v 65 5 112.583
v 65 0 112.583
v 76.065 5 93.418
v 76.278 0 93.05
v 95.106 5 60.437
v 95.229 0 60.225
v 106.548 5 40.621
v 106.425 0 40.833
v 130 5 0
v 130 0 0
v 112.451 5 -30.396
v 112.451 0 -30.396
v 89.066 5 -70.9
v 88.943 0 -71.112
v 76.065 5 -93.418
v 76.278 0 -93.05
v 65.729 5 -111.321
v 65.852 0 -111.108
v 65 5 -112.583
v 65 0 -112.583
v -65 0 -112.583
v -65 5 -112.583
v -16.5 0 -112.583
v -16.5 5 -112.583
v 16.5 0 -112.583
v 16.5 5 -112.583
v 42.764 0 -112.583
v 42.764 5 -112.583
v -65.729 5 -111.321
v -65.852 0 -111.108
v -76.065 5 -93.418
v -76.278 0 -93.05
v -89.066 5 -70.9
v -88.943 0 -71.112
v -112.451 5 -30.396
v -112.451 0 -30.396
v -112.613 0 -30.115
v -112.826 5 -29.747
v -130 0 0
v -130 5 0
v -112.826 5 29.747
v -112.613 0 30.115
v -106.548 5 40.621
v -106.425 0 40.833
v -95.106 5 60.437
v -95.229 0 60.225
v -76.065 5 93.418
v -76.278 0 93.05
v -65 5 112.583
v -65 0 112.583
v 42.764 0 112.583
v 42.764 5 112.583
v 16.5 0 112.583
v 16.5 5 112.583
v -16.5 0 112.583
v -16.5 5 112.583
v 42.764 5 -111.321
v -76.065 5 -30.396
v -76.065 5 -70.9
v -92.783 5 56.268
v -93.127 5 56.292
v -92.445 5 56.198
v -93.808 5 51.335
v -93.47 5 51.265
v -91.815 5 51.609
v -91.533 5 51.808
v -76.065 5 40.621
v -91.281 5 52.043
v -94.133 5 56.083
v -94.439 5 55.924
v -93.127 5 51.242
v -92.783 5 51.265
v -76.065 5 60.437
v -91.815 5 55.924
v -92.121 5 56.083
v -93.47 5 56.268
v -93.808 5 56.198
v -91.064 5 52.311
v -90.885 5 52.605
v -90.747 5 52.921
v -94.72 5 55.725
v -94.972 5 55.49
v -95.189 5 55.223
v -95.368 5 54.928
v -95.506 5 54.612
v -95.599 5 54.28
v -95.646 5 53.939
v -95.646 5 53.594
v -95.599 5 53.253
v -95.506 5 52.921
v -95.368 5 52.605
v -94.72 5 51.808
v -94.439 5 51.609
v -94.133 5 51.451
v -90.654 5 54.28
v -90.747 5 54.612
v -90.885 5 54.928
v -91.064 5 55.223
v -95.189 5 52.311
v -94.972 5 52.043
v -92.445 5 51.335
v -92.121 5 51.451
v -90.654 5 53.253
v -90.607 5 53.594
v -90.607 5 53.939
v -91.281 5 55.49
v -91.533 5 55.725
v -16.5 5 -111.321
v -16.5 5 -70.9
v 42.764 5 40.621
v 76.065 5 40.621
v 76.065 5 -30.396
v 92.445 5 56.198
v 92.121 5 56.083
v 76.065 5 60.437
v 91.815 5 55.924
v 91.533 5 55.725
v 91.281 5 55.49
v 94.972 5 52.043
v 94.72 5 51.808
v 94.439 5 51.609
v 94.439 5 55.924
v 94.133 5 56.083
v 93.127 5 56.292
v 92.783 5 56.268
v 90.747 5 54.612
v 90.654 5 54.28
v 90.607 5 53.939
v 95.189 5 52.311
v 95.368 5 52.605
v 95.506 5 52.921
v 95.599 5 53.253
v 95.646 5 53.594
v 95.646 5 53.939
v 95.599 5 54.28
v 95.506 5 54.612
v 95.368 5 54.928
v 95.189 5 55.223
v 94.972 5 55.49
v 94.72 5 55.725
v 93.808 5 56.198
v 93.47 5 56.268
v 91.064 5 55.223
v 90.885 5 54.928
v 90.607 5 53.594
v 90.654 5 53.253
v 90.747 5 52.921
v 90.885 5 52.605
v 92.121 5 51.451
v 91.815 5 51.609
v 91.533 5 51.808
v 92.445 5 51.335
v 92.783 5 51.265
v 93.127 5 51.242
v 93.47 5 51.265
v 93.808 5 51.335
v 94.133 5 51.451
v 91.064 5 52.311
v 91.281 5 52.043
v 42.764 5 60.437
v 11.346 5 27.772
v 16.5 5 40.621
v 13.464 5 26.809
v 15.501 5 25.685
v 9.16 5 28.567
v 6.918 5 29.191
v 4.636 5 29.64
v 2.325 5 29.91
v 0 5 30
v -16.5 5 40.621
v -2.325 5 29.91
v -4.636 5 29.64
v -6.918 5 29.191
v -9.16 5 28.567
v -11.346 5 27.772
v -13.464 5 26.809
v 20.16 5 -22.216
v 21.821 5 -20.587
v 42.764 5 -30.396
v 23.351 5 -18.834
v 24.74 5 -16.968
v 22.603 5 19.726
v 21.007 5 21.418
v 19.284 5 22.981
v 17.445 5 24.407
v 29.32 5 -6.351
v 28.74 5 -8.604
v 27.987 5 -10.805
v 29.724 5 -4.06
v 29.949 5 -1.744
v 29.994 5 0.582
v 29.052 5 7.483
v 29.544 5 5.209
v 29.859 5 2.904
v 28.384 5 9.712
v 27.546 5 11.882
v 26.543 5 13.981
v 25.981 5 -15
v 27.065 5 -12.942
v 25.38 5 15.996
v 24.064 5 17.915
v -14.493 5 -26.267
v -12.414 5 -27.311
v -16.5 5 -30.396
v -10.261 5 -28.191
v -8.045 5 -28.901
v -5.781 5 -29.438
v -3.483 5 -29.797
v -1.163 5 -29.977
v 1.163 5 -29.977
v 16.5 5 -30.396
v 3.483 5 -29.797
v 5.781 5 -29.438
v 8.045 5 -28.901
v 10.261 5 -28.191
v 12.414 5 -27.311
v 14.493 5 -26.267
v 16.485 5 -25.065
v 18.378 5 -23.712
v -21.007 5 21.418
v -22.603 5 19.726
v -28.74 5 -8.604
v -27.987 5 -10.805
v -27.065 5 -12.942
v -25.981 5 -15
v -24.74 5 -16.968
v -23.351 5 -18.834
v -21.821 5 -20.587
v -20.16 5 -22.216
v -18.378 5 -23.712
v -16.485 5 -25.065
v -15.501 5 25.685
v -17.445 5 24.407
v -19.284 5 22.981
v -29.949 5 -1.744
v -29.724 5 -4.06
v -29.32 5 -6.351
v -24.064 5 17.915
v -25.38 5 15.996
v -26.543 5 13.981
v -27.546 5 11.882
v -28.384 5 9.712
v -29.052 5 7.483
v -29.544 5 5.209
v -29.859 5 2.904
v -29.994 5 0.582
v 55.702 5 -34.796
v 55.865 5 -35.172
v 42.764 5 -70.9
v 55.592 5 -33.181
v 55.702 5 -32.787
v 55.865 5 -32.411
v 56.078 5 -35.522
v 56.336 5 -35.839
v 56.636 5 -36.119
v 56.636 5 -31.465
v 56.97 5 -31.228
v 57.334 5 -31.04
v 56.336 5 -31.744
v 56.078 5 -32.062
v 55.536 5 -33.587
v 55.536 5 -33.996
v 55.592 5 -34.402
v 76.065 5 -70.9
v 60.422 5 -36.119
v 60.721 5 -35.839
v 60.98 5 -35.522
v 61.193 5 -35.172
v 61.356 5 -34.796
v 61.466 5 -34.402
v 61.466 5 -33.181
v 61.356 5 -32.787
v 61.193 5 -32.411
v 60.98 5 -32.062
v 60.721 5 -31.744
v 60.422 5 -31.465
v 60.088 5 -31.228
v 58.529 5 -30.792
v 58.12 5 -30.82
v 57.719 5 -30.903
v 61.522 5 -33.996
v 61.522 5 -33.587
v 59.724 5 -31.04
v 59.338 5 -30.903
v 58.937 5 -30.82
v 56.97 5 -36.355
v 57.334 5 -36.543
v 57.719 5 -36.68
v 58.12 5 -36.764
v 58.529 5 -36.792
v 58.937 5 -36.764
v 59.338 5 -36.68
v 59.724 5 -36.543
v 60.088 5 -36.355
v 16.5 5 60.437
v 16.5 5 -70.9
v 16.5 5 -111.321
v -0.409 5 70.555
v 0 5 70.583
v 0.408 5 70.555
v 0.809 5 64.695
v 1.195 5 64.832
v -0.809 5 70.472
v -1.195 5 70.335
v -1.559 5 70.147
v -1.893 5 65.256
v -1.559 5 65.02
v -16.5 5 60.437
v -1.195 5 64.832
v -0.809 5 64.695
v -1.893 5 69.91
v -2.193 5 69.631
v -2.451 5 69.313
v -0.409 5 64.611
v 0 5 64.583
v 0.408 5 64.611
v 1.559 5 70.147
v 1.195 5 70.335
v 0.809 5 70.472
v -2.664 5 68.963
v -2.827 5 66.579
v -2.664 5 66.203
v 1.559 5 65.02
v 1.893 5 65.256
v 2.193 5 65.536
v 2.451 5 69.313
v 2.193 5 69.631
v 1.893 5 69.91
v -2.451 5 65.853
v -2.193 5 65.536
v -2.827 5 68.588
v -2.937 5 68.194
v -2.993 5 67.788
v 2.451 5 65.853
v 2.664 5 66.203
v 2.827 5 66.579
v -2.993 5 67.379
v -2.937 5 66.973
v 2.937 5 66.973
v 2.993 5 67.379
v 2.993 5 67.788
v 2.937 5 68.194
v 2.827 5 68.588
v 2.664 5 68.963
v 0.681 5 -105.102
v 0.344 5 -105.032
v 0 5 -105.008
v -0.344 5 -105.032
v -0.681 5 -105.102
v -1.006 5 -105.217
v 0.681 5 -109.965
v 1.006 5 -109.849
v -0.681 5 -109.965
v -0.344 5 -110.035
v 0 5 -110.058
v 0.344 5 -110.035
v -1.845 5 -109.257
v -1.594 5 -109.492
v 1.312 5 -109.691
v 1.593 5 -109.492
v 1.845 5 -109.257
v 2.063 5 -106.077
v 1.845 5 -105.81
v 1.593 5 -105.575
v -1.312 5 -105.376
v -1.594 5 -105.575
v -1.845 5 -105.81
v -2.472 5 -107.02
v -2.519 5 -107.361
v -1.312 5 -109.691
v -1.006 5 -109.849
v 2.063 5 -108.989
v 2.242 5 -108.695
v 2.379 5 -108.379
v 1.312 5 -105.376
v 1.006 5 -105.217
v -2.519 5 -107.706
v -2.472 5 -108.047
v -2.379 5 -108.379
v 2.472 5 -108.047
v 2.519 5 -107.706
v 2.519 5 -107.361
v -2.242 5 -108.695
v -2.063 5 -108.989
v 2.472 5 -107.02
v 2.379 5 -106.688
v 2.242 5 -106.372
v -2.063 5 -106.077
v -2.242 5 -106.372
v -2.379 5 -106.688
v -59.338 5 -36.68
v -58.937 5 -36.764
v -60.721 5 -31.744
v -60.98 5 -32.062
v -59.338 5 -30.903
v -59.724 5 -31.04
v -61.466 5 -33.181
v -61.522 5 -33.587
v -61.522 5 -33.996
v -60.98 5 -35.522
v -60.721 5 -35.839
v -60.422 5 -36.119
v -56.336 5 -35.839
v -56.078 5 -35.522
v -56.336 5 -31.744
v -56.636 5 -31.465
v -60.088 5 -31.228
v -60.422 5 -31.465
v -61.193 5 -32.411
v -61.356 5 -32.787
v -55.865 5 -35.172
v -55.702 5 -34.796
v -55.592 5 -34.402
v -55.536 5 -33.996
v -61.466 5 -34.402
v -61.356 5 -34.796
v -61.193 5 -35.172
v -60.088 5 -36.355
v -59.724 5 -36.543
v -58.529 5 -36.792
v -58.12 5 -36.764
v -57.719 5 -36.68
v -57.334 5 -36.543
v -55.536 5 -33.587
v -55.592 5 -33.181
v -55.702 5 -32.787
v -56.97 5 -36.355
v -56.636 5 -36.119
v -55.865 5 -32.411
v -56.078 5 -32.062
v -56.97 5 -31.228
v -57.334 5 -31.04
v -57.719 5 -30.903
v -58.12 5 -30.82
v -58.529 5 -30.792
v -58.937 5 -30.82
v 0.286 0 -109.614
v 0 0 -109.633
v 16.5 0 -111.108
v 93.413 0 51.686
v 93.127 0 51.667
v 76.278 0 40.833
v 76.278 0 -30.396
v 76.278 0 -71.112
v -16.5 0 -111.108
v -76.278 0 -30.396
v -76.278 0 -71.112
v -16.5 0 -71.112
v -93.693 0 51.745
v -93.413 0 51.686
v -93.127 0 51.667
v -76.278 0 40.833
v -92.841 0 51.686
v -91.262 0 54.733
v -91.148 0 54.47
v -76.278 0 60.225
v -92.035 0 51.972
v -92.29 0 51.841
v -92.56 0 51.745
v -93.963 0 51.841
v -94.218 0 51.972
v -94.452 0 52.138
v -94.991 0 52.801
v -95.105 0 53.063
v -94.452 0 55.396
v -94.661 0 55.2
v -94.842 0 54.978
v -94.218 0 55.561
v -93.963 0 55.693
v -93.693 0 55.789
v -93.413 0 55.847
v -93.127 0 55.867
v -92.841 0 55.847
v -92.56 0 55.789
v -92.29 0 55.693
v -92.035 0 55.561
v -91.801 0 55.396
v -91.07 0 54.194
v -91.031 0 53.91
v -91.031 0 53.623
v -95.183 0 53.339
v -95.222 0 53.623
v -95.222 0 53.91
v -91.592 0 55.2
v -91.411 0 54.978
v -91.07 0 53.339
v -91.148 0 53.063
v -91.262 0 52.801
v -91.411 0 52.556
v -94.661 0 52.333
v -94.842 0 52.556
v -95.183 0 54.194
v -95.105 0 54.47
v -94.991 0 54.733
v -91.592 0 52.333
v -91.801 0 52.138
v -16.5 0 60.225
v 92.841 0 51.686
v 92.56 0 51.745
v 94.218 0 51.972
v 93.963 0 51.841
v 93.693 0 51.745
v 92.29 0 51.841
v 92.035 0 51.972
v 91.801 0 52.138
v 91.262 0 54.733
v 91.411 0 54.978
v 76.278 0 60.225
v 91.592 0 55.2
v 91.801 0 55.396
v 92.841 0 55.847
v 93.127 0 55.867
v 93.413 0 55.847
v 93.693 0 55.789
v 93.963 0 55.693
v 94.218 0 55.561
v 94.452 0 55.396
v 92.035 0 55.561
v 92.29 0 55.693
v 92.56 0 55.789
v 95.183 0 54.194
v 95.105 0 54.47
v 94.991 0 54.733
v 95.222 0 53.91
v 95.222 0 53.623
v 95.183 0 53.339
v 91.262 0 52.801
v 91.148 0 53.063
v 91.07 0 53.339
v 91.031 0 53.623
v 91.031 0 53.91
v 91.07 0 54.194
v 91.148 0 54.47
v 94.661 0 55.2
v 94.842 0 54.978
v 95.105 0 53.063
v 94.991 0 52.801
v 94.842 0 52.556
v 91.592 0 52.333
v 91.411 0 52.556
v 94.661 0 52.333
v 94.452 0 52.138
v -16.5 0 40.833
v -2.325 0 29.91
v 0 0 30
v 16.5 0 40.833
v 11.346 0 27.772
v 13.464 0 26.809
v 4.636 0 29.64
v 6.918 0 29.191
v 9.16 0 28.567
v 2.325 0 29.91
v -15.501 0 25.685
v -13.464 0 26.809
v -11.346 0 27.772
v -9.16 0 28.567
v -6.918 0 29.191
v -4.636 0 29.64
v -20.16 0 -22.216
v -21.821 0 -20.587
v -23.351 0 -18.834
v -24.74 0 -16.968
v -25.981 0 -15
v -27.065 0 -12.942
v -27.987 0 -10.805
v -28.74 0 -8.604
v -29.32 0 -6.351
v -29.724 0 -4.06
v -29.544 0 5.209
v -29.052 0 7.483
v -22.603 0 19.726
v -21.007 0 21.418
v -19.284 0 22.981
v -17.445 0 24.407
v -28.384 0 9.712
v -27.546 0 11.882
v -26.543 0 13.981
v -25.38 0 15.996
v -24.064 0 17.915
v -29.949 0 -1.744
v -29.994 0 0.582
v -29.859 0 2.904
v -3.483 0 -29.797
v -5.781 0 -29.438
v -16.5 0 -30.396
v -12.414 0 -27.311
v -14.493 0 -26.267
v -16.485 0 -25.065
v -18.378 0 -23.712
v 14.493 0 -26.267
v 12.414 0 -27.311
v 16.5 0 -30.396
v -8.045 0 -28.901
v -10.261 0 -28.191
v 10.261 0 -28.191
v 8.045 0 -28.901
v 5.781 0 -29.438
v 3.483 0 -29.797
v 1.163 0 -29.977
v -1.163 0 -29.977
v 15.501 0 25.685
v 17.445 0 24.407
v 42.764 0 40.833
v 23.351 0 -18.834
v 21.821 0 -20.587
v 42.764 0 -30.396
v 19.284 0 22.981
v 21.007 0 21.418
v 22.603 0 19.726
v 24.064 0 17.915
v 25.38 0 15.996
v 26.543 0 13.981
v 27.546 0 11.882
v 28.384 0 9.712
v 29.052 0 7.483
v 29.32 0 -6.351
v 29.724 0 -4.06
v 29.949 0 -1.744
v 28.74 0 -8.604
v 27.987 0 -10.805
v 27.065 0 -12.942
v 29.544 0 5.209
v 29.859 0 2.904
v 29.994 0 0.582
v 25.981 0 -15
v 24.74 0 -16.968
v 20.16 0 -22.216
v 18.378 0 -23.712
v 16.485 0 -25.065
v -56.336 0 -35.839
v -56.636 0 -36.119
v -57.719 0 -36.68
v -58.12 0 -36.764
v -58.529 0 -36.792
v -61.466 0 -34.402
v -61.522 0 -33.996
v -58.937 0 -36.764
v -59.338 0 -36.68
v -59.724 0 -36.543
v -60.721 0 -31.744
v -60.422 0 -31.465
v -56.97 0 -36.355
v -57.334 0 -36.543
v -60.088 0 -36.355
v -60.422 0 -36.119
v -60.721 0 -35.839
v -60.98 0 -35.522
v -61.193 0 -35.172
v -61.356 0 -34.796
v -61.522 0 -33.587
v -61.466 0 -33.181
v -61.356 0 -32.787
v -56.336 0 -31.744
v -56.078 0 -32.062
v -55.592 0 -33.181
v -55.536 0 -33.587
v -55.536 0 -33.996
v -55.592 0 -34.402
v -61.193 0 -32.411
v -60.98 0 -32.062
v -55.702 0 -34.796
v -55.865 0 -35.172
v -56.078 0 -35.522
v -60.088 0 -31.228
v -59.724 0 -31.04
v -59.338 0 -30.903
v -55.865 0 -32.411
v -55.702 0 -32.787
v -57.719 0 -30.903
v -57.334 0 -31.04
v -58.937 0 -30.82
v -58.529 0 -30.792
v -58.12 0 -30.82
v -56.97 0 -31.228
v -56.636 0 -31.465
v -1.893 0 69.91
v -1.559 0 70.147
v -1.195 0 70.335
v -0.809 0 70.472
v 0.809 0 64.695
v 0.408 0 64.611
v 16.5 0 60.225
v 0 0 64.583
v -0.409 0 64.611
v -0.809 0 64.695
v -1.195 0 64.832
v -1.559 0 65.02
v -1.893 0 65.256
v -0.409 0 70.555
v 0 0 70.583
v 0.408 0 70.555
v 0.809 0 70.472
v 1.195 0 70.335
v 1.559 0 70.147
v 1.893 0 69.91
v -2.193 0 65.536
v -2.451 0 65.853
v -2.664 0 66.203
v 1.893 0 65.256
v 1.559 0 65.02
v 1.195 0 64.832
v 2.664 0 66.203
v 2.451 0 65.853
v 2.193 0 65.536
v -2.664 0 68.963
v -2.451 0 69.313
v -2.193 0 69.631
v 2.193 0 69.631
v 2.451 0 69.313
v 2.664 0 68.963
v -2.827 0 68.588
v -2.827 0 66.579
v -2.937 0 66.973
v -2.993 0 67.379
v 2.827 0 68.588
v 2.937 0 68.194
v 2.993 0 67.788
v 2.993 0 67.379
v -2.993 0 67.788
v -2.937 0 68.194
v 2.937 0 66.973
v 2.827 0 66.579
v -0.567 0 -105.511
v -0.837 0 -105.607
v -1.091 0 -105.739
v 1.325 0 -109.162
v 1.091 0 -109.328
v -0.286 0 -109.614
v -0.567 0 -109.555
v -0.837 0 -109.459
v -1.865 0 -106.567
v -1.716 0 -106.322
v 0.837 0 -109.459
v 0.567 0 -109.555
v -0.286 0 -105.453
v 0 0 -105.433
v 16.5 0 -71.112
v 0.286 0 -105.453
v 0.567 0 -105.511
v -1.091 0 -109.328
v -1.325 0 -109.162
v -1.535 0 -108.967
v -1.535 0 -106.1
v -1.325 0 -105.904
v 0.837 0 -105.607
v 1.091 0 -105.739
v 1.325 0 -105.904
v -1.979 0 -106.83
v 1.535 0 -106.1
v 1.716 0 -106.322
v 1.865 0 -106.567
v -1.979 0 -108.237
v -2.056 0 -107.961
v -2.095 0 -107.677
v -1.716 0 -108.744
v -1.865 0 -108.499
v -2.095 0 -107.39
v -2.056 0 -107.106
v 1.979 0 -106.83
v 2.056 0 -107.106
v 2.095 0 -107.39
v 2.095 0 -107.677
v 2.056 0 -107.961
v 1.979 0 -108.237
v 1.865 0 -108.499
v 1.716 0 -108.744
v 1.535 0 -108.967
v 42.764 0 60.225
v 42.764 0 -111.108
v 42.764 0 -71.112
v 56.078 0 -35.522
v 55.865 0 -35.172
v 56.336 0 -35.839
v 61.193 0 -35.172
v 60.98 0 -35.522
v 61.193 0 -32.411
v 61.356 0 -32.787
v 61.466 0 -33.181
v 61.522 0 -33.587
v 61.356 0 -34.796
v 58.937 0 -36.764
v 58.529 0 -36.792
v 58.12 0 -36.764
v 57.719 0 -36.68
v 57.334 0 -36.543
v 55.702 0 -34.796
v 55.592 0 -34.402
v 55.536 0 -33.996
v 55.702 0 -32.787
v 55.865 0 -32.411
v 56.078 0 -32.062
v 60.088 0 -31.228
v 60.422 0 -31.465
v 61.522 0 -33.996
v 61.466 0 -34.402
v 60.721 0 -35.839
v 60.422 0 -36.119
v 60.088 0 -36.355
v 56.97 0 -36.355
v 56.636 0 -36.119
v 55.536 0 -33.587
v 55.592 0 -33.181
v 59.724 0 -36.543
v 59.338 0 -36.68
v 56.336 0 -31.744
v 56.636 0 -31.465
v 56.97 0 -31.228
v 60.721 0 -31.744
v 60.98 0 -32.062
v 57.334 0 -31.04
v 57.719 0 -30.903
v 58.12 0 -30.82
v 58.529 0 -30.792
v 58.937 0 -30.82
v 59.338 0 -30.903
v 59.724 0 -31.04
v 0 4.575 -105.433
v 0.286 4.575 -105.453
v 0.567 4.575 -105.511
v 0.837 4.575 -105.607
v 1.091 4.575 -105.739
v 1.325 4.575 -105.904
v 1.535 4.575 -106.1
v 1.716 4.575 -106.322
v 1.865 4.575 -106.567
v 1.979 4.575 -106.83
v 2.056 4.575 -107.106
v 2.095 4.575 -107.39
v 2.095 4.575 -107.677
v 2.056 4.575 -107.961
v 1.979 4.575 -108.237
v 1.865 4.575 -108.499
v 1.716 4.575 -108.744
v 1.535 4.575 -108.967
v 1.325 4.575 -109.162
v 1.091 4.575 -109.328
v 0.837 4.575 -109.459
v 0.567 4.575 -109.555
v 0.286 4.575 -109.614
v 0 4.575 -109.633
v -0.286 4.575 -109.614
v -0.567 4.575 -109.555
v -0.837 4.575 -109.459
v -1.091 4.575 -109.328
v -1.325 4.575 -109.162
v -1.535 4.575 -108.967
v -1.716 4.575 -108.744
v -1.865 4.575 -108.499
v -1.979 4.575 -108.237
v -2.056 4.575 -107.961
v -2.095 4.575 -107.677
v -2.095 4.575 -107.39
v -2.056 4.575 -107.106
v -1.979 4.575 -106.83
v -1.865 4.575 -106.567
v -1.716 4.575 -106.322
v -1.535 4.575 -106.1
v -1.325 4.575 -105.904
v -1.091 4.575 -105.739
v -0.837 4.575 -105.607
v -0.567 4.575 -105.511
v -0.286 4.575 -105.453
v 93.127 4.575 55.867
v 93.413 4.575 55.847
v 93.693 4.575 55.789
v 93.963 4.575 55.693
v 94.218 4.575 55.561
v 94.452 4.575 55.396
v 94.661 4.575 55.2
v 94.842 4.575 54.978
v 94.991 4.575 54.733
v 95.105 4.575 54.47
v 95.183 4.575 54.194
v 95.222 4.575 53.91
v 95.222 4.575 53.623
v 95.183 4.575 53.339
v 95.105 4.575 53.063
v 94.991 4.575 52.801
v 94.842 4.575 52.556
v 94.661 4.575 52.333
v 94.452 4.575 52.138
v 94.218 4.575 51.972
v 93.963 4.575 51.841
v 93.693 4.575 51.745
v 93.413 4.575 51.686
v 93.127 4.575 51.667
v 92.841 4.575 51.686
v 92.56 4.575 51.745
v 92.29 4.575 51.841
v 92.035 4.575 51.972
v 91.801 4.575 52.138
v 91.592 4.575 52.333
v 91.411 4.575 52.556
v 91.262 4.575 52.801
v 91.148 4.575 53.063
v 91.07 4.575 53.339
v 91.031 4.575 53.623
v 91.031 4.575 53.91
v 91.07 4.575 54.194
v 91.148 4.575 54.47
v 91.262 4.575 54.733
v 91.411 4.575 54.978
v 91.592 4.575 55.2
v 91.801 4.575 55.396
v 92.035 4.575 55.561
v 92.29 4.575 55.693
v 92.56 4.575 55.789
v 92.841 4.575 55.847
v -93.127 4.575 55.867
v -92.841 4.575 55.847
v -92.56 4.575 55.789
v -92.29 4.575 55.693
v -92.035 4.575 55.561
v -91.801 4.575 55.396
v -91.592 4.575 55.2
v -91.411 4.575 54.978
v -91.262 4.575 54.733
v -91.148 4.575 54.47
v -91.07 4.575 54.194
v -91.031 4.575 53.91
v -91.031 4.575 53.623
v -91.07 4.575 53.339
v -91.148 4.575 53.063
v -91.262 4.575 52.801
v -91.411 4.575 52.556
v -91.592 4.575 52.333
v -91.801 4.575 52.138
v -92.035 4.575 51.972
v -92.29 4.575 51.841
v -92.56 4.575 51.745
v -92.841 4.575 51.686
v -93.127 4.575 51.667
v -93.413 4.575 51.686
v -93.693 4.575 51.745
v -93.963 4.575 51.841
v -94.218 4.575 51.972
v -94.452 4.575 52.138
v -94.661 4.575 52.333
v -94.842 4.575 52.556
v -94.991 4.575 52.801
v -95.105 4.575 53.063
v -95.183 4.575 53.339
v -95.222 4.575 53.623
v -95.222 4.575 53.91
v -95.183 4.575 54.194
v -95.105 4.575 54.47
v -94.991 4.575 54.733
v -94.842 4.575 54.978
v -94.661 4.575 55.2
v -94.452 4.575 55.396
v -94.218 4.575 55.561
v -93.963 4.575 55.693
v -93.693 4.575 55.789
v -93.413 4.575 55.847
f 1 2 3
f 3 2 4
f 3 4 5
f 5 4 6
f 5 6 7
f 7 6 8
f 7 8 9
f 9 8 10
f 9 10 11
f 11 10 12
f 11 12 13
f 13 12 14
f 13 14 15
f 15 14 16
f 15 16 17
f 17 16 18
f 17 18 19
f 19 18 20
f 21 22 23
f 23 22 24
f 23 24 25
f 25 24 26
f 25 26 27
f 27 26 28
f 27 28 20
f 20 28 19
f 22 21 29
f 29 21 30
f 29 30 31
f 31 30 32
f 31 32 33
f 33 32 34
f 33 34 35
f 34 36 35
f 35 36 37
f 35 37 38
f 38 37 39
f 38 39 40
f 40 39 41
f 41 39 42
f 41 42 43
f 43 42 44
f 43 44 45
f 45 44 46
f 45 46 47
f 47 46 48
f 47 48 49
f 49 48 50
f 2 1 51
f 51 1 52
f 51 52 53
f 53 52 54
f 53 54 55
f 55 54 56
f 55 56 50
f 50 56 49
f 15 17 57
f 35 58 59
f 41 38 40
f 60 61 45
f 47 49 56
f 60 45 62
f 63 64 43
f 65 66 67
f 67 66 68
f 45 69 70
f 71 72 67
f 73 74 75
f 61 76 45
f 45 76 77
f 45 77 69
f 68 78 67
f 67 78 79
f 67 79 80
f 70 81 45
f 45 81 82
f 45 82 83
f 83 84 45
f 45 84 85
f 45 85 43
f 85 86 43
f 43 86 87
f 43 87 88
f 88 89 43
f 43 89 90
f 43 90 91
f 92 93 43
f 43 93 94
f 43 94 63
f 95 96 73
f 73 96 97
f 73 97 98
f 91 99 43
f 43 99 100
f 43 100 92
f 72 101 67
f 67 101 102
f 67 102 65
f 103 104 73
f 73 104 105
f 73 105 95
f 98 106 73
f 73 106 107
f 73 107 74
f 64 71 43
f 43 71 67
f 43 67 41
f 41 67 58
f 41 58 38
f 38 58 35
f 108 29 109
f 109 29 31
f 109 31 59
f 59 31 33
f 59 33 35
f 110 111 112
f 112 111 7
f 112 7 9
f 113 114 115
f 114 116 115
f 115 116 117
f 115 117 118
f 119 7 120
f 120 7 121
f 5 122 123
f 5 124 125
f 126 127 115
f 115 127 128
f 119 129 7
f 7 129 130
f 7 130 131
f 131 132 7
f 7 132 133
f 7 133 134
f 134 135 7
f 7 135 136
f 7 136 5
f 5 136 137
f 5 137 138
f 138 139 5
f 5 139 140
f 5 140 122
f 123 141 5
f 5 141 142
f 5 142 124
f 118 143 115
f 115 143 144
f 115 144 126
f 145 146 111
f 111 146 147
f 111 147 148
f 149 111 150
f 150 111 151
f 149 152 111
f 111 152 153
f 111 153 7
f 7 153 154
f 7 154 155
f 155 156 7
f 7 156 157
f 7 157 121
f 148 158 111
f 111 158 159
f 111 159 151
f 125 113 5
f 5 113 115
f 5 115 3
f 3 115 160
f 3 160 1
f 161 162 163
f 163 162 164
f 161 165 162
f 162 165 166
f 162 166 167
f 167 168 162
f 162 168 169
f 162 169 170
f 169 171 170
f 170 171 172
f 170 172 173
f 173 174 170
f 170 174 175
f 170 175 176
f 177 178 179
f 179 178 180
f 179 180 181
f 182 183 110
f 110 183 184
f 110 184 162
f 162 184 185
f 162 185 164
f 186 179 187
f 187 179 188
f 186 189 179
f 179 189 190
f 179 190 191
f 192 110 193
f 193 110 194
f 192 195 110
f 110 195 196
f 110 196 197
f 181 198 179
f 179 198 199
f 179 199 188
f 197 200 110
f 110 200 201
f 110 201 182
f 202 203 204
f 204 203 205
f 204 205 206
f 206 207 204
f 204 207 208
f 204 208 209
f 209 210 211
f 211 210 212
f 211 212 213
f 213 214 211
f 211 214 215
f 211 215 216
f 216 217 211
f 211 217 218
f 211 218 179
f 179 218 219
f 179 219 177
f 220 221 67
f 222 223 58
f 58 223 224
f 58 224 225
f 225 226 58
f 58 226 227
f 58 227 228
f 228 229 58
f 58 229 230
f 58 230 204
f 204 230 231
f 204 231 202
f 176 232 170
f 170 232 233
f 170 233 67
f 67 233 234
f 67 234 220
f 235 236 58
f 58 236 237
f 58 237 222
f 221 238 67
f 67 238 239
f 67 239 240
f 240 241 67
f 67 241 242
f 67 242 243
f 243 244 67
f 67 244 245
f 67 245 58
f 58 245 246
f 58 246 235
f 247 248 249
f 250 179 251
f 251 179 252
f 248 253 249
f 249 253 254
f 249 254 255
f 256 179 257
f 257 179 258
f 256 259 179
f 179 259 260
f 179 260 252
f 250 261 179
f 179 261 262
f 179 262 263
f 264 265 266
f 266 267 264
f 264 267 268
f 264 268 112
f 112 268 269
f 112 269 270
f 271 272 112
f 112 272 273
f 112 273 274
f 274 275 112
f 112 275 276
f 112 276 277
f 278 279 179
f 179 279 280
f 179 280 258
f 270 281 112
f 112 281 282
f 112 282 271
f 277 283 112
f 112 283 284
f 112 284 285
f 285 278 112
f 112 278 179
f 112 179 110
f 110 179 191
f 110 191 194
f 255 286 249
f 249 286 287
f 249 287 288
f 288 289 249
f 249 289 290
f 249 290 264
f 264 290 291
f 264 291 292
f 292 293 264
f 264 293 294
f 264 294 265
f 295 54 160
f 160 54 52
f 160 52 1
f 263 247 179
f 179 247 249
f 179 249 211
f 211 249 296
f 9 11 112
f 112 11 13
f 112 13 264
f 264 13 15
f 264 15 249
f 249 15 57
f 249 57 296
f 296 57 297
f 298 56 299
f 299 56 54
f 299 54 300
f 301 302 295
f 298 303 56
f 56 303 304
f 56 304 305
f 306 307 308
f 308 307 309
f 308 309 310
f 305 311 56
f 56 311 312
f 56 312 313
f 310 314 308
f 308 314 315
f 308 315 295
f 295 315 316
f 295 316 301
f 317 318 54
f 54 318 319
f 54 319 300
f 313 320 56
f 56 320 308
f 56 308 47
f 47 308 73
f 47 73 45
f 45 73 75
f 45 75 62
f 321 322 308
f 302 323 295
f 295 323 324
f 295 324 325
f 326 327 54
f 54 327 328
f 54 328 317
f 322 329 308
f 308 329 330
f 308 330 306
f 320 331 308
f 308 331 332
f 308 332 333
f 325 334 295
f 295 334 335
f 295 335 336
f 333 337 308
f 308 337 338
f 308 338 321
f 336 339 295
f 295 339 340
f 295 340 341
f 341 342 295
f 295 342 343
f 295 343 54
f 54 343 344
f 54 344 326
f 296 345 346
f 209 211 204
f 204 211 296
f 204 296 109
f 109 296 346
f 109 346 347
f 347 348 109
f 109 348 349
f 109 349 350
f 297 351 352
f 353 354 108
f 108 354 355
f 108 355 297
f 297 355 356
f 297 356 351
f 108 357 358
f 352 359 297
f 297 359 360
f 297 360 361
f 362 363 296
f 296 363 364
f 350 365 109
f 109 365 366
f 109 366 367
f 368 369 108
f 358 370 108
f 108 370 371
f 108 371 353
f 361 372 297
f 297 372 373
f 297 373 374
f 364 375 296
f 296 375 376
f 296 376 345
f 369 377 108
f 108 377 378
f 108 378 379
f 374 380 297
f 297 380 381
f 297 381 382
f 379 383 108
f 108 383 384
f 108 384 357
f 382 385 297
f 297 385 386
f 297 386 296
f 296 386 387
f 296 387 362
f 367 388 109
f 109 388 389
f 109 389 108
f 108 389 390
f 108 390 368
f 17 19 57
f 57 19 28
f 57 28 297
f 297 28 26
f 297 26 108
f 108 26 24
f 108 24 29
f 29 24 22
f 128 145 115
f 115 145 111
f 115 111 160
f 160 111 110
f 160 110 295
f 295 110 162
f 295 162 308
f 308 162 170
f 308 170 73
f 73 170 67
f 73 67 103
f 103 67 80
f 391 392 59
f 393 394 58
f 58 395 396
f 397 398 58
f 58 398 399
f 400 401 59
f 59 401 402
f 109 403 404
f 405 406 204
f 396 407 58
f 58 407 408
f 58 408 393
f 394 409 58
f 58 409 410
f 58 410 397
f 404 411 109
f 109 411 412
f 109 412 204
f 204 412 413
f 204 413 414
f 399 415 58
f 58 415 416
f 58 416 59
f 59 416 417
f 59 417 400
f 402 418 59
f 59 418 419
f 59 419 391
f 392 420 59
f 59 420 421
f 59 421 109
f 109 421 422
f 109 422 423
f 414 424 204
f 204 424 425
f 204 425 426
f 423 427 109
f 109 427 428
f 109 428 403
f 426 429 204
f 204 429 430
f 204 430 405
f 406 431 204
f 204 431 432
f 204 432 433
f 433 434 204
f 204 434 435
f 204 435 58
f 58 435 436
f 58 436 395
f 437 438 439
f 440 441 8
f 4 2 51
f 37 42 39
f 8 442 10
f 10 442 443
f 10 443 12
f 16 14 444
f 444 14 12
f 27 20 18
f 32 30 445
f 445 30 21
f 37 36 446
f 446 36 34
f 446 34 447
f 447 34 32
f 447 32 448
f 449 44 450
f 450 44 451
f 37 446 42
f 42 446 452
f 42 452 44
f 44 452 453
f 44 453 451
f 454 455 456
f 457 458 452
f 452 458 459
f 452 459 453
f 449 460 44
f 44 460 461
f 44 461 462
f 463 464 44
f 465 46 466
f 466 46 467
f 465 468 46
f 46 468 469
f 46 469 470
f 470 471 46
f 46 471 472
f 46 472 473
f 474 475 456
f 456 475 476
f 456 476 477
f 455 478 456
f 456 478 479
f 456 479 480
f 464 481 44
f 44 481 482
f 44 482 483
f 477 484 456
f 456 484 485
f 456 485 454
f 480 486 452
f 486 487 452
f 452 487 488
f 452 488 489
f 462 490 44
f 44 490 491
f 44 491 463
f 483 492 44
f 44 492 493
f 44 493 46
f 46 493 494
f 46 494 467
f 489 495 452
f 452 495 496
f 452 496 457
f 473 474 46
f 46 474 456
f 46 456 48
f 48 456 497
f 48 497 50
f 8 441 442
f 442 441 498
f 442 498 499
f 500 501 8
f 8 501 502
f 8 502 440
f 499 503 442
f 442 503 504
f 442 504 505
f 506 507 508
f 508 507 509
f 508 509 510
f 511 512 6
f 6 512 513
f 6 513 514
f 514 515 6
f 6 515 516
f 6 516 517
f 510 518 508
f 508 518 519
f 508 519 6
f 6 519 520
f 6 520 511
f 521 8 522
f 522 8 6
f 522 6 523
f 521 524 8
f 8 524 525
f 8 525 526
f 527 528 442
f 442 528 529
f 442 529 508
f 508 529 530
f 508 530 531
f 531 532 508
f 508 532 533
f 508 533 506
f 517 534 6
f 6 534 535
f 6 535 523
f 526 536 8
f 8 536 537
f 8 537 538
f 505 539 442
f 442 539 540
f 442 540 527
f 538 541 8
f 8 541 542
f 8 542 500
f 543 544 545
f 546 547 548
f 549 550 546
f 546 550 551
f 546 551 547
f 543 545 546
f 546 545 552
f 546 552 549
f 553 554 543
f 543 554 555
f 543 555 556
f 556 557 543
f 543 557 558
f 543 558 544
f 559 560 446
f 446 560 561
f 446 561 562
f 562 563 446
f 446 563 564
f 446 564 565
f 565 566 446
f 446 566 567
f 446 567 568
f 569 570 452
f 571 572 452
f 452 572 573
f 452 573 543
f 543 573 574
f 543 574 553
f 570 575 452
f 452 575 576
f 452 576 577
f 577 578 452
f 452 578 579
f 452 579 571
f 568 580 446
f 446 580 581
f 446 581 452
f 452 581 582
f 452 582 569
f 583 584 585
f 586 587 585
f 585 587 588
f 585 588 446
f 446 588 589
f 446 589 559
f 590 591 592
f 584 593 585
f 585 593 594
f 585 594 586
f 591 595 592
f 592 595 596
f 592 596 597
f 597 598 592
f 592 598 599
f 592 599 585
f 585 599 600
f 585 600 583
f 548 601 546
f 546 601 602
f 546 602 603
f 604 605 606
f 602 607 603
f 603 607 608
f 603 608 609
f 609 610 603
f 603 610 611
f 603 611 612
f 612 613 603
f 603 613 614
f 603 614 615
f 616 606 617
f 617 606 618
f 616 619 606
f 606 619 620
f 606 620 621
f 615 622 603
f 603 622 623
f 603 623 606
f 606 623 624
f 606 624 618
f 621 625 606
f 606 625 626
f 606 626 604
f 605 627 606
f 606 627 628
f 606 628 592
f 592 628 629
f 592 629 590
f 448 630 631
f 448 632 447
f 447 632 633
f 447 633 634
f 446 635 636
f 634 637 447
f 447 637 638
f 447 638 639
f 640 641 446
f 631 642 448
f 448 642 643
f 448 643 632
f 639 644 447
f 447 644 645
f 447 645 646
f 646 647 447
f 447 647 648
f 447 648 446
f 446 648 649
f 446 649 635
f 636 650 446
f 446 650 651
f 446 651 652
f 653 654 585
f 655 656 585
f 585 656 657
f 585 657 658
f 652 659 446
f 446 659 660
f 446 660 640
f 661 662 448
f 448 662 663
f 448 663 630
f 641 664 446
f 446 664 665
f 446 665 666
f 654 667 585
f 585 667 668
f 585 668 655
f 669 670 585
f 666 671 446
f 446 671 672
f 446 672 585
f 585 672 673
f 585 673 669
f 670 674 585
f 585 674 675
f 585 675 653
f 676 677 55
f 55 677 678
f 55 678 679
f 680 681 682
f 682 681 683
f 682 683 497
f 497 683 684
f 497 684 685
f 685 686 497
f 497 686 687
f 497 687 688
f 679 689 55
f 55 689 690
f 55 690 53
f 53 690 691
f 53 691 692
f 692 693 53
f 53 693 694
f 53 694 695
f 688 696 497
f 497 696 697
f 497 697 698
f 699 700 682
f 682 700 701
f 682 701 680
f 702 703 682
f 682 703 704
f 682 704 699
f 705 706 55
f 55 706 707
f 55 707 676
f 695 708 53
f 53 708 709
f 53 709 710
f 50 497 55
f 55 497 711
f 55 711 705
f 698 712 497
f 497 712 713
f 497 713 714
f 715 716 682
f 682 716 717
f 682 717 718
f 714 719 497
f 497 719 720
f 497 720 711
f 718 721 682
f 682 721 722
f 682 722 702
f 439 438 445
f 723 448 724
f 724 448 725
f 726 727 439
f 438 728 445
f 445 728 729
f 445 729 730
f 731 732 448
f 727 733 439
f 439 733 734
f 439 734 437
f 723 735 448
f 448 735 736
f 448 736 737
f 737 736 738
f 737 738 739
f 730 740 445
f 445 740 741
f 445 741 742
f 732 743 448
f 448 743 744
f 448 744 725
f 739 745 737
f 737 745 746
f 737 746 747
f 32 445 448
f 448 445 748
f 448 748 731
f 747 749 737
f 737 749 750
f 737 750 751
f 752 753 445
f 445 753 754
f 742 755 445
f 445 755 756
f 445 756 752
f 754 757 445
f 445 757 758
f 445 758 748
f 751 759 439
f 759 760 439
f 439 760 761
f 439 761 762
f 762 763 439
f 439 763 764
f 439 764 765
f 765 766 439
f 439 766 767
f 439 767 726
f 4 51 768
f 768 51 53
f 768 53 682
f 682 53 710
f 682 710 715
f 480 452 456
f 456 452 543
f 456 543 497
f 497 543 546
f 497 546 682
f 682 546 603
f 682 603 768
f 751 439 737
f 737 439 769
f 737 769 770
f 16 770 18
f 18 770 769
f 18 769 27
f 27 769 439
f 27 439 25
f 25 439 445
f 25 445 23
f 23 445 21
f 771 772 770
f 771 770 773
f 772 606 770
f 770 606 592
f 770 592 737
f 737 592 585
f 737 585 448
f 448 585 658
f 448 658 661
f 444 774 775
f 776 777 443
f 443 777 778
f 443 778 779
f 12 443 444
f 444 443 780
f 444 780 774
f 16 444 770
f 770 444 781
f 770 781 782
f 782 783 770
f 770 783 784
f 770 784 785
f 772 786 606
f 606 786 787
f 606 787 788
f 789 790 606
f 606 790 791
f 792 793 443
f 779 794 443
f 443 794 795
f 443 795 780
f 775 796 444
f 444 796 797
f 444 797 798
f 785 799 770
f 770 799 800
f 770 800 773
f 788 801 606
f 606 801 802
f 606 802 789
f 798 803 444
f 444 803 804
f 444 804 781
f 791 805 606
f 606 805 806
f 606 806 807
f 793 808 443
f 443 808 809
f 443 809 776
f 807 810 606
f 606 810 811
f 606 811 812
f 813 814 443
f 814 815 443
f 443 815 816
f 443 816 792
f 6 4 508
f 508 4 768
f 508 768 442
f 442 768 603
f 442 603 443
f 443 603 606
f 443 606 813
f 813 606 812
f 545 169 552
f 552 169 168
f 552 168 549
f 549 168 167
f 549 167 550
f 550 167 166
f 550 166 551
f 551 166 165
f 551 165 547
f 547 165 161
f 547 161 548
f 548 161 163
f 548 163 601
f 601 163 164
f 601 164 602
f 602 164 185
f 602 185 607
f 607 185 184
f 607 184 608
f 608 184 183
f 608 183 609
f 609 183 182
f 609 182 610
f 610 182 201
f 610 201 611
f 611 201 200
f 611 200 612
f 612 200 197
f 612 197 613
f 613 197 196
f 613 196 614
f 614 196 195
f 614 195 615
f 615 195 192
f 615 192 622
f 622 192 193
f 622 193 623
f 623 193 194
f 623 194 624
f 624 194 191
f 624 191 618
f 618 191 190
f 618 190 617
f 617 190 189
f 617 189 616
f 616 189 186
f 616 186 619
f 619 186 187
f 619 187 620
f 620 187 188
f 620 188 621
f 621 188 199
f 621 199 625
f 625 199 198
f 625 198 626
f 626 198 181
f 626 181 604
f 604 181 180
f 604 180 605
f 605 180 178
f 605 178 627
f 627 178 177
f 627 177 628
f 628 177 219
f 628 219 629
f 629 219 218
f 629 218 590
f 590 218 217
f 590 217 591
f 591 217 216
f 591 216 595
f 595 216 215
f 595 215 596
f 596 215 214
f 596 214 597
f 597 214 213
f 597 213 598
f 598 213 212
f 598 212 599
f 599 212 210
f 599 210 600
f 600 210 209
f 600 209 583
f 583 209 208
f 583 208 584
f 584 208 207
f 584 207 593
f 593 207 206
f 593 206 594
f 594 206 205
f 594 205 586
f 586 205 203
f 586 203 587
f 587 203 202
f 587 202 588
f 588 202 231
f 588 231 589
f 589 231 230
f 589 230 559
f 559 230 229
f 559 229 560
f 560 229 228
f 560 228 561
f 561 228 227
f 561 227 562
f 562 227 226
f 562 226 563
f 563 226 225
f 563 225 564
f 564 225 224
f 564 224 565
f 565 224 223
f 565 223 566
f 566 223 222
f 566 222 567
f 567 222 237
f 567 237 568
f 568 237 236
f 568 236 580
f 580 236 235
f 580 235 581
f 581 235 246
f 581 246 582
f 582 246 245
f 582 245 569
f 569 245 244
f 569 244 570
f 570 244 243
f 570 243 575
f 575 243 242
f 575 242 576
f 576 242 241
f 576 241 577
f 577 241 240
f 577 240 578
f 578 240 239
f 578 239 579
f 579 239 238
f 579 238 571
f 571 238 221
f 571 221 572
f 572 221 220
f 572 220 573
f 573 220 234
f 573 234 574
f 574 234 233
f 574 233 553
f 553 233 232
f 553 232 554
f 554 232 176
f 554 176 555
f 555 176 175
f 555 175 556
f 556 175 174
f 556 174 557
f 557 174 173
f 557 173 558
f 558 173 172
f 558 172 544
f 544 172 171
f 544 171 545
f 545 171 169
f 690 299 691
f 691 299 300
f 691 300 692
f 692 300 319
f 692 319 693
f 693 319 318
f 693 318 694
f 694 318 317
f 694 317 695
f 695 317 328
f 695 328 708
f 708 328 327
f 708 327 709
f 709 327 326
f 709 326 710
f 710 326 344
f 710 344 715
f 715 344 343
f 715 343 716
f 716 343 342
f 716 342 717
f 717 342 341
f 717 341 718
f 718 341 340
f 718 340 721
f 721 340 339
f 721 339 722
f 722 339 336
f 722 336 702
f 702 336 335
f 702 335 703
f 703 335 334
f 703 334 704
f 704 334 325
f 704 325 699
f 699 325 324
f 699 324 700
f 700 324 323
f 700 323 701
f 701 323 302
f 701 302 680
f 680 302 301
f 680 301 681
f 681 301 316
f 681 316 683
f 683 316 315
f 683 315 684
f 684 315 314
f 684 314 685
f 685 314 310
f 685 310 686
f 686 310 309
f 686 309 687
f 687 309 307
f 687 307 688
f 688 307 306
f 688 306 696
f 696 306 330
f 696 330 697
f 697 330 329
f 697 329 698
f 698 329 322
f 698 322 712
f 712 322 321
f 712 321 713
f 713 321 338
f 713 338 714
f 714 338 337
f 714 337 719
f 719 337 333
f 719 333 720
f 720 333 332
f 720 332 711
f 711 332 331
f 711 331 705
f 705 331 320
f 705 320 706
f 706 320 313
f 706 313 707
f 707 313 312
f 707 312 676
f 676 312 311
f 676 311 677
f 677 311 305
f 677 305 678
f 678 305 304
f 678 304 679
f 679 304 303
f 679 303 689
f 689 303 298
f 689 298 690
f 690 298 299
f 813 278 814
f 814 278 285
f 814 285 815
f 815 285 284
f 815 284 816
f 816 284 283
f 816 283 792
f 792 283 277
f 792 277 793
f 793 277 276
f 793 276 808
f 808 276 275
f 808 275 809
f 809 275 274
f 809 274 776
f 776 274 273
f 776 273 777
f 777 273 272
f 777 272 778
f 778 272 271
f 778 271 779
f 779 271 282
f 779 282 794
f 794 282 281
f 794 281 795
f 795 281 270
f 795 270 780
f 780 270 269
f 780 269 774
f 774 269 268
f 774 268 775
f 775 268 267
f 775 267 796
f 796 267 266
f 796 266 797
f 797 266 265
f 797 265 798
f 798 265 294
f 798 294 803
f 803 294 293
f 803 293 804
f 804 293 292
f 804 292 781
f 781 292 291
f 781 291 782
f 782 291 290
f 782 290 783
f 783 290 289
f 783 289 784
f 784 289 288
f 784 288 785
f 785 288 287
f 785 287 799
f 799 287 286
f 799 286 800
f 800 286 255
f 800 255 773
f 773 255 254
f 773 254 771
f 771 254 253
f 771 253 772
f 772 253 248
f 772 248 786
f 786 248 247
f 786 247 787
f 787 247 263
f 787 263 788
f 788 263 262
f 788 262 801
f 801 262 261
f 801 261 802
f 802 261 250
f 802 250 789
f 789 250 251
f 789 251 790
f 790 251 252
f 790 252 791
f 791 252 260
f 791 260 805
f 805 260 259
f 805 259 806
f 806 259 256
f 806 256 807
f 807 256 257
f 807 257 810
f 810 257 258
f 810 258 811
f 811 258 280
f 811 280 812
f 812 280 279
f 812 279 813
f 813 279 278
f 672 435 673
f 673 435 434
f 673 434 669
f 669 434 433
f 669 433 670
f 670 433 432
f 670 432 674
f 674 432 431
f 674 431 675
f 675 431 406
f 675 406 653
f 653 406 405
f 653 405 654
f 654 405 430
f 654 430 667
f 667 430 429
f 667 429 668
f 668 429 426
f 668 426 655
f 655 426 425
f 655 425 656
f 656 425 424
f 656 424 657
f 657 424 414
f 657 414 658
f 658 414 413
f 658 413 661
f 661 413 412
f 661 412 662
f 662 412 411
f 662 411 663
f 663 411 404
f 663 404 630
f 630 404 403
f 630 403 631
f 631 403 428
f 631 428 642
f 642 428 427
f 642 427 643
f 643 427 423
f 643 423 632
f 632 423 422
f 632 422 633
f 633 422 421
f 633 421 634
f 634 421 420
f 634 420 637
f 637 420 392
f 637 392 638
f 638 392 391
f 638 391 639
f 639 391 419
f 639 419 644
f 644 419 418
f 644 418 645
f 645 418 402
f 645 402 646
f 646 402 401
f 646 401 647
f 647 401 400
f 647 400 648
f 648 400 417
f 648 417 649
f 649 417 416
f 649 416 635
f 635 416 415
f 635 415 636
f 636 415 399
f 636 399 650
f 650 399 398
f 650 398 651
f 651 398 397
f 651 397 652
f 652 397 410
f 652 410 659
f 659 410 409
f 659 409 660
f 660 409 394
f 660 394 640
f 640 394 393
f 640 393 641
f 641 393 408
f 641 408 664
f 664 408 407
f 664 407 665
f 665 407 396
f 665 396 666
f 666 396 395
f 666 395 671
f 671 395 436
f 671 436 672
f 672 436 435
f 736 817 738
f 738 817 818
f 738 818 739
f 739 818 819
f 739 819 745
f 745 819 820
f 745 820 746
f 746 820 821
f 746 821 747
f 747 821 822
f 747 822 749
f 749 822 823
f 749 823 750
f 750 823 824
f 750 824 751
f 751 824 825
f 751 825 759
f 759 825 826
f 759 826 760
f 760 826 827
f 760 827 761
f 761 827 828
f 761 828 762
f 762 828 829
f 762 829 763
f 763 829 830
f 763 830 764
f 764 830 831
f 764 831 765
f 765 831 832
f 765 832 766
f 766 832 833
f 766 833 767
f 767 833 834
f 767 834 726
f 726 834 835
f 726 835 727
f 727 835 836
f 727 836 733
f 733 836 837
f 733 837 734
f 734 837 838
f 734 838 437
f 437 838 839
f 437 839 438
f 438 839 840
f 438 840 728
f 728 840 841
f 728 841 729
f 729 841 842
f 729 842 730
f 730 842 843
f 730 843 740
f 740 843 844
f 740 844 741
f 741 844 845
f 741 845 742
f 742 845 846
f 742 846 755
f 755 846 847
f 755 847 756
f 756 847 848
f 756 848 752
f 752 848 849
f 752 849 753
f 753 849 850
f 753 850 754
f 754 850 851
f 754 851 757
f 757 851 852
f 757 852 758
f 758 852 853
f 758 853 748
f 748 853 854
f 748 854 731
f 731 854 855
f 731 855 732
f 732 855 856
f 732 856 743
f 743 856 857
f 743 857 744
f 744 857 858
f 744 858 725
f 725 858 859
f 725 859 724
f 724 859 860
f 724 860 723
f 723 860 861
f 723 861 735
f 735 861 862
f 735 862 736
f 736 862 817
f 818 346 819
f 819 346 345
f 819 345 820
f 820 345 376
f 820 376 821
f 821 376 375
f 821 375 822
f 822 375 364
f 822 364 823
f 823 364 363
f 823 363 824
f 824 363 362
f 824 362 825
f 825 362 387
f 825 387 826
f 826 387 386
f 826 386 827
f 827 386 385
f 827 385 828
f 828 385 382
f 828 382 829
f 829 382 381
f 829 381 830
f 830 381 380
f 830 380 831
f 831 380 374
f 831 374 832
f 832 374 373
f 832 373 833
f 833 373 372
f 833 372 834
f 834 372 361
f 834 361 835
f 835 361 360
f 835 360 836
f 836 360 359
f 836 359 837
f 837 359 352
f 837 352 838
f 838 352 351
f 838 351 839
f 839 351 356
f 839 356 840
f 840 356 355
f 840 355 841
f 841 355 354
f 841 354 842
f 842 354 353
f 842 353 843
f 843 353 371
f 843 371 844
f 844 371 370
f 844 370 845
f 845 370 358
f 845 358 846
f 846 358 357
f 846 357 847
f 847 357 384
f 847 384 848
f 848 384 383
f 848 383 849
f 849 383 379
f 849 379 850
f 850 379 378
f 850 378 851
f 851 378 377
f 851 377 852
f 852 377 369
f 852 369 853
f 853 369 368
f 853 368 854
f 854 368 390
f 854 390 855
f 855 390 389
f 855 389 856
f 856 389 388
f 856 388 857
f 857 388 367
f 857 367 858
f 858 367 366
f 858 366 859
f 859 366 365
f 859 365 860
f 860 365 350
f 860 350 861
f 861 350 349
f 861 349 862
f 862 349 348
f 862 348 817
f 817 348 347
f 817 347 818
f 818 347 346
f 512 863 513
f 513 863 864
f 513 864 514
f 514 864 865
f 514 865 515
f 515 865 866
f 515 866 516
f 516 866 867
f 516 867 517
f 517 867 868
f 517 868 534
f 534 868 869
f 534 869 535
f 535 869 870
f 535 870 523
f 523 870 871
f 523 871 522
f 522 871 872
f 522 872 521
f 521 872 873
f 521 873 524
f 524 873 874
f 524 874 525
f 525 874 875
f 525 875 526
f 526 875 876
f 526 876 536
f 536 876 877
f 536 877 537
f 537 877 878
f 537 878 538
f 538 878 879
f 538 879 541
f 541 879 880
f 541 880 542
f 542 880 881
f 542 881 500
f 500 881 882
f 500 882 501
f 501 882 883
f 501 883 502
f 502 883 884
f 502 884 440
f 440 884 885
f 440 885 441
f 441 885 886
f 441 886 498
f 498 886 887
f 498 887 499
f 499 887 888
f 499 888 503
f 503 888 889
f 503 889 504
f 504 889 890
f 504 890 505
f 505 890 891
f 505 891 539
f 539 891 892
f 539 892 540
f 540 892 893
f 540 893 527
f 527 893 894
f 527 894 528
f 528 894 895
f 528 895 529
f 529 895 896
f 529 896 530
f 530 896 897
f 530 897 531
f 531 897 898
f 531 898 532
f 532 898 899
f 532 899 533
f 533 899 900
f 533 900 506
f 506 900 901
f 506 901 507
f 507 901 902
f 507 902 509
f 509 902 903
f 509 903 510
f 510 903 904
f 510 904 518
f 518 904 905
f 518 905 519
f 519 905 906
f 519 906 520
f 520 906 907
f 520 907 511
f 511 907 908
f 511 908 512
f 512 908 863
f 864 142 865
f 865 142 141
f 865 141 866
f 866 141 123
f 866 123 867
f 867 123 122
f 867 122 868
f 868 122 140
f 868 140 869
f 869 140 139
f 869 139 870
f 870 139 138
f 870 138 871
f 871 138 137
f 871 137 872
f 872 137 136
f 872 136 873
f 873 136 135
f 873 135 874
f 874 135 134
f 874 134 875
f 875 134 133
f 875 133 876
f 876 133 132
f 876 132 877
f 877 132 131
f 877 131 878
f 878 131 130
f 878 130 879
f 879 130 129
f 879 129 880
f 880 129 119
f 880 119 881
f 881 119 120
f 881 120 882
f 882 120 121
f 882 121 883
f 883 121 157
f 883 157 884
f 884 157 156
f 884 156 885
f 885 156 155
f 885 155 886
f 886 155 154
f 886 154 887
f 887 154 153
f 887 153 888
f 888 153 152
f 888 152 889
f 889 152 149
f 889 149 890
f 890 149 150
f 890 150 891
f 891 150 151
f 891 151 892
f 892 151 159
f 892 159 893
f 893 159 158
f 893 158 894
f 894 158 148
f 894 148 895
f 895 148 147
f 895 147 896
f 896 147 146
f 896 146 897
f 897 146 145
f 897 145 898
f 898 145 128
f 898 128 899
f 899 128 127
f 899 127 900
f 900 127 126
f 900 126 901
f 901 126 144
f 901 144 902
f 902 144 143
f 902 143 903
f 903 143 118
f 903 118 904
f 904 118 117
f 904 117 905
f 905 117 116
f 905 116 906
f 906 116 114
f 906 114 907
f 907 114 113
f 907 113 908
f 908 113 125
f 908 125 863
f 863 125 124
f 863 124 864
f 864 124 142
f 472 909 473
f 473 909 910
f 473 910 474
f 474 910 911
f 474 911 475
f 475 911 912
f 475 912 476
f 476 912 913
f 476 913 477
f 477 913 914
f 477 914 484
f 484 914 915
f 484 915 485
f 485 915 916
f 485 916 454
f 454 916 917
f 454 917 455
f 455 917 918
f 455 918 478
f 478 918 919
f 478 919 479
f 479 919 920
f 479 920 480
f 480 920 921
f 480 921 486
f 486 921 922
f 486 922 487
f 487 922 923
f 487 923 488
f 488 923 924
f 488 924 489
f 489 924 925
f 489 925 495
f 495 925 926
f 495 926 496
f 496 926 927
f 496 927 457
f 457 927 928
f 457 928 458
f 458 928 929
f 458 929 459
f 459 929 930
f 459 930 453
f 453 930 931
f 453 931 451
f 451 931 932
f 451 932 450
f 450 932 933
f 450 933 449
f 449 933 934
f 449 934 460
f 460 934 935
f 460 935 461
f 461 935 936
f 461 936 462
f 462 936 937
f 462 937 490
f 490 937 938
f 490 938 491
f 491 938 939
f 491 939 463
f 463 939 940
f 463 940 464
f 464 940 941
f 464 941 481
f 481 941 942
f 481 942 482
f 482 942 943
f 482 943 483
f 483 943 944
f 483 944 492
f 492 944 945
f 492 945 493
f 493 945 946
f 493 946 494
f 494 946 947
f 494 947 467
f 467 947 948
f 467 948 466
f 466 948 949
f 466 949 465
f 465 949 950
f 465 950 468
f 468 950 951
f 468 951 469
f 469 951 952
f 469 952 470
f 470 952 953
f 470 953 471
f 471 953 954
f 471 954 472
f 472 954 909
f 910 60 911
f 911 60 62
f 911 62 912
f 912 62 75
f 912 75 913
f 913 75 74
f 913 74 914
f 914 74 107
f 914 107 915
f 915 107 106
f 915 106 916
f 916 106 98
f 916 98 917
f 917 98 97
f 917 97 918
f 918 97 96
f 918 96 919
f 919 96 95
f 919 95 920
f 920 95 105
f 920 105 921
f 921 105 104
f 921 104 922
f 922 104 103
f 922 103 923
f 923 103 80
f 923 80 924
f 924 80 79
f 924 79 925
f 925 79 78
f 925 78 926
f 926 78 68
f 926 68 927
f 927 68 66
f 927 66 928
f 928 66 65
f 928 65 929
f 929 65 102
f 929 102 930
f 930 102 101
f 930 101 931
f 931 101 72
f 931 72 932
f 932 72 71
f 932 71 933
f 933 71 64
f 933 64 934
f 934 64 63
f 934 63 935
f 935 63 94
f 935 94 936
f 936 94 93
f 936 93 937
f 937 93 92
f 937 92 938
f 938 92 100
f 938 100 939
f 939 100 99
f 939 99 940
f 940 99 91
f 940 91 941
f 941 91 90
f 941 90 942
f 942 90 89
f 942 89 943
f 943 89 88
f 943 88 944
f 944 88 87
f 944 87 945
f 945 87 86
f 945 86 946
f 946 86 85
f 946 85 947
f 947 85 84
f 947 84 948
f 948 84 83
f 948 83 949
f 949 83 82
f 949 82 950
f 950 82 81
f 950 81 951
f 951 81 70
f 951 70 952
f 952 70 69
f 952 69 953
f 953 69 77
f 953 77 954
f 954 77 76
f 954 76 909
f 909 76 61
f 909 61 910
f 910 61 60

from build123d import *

# Parameters (mm, degrees)
EXTRUDE_1_DEPTH              = 5
SKETCH_2_R                   = 30
CUT_EXTRUDE_1_DEPTH          = 5
SKETCH_3_R                   = 3
CUT_EXTRUDE_2_DEPTH          = 5
HOLE_WIZARD_M5_3_D           = 4.2
HOLE_WIZARD_M5_3_CSINK_D     = 5.05
HOLE_WIZARD_M5_3_CSINK_ANGLE = 90


with BuildPart() as part:
    # 草图1 → 凸台-拉伸1 (new body)
    with BuildSketch(Plane(origin=(0, 0, 0), x_dir=(1, 0, 0), z_dir=(0, 1, 0))):
        Polygon((130, 0), (65, 112.583302492), (-65, 112.583302492), (-130, 0), (-65, -112.583302492), (65, -112.583302492), align=None)
    extrude(amount=EXTRUDE_1_DEPTH)

    # 草图2 → 切除-拉伸1 (cut)
    with BuildSketch(Plane(origin=(0, 5, 0), x_dir=(1, 0, 0), z_dir=(0, 1, 0))):
        with Locations(Location((0, 0, 0), (0, 0, 270))):
            Circle(SKETCH_2_R)
    extrude(amount=-CUT_EXTRUDE_1_DEPTH, mode=Mode.SUBTRACT)

    # 草图3 → 切除-拉伸2 (cut)
    with BuildSketch(Plane(origin=(0, 5, 0), x_dir=(1, 0, 0), z_dir=(0, 1, 0))):
        with Locations(Location((-58.52885683, 33.791651246, 0), (0, 0, 270))):
            Circle(SKETCH_3_R)
        with Locations(Location((58.52885683, 33.791651246, 0), (0, 0, 270))):
            Circle(SKETCH_3_R)
        with Locations(Location((0, -67.583302492, 0), (0, 0, 270))):
            Circle(SKETCH_3_R)
    extrude(amount=-CUT_EXTRUDE_2_DEPTH, mode=Mode.SUBTRACT)

    # M5 螺纹孔3 (through all)
    with Locations(Plane(origin=(0, 5, 0), x_dir=(1, 0, 0), z_dir=(0, 1, 0))):
        with Locations((0, 107.533302492), (-93.126571711, -53.766651246), (93.126571711, -53.766651246)):
            CounterSinkHole(HOLE_WIZARD_M5_3_D / 2, HOLE_WIZARD_M5_3_CSINK_D / 2, counter_sink_angle=HOLE_WIZARD_M5_3_CSINK_ANGLE)


solid = part.part
